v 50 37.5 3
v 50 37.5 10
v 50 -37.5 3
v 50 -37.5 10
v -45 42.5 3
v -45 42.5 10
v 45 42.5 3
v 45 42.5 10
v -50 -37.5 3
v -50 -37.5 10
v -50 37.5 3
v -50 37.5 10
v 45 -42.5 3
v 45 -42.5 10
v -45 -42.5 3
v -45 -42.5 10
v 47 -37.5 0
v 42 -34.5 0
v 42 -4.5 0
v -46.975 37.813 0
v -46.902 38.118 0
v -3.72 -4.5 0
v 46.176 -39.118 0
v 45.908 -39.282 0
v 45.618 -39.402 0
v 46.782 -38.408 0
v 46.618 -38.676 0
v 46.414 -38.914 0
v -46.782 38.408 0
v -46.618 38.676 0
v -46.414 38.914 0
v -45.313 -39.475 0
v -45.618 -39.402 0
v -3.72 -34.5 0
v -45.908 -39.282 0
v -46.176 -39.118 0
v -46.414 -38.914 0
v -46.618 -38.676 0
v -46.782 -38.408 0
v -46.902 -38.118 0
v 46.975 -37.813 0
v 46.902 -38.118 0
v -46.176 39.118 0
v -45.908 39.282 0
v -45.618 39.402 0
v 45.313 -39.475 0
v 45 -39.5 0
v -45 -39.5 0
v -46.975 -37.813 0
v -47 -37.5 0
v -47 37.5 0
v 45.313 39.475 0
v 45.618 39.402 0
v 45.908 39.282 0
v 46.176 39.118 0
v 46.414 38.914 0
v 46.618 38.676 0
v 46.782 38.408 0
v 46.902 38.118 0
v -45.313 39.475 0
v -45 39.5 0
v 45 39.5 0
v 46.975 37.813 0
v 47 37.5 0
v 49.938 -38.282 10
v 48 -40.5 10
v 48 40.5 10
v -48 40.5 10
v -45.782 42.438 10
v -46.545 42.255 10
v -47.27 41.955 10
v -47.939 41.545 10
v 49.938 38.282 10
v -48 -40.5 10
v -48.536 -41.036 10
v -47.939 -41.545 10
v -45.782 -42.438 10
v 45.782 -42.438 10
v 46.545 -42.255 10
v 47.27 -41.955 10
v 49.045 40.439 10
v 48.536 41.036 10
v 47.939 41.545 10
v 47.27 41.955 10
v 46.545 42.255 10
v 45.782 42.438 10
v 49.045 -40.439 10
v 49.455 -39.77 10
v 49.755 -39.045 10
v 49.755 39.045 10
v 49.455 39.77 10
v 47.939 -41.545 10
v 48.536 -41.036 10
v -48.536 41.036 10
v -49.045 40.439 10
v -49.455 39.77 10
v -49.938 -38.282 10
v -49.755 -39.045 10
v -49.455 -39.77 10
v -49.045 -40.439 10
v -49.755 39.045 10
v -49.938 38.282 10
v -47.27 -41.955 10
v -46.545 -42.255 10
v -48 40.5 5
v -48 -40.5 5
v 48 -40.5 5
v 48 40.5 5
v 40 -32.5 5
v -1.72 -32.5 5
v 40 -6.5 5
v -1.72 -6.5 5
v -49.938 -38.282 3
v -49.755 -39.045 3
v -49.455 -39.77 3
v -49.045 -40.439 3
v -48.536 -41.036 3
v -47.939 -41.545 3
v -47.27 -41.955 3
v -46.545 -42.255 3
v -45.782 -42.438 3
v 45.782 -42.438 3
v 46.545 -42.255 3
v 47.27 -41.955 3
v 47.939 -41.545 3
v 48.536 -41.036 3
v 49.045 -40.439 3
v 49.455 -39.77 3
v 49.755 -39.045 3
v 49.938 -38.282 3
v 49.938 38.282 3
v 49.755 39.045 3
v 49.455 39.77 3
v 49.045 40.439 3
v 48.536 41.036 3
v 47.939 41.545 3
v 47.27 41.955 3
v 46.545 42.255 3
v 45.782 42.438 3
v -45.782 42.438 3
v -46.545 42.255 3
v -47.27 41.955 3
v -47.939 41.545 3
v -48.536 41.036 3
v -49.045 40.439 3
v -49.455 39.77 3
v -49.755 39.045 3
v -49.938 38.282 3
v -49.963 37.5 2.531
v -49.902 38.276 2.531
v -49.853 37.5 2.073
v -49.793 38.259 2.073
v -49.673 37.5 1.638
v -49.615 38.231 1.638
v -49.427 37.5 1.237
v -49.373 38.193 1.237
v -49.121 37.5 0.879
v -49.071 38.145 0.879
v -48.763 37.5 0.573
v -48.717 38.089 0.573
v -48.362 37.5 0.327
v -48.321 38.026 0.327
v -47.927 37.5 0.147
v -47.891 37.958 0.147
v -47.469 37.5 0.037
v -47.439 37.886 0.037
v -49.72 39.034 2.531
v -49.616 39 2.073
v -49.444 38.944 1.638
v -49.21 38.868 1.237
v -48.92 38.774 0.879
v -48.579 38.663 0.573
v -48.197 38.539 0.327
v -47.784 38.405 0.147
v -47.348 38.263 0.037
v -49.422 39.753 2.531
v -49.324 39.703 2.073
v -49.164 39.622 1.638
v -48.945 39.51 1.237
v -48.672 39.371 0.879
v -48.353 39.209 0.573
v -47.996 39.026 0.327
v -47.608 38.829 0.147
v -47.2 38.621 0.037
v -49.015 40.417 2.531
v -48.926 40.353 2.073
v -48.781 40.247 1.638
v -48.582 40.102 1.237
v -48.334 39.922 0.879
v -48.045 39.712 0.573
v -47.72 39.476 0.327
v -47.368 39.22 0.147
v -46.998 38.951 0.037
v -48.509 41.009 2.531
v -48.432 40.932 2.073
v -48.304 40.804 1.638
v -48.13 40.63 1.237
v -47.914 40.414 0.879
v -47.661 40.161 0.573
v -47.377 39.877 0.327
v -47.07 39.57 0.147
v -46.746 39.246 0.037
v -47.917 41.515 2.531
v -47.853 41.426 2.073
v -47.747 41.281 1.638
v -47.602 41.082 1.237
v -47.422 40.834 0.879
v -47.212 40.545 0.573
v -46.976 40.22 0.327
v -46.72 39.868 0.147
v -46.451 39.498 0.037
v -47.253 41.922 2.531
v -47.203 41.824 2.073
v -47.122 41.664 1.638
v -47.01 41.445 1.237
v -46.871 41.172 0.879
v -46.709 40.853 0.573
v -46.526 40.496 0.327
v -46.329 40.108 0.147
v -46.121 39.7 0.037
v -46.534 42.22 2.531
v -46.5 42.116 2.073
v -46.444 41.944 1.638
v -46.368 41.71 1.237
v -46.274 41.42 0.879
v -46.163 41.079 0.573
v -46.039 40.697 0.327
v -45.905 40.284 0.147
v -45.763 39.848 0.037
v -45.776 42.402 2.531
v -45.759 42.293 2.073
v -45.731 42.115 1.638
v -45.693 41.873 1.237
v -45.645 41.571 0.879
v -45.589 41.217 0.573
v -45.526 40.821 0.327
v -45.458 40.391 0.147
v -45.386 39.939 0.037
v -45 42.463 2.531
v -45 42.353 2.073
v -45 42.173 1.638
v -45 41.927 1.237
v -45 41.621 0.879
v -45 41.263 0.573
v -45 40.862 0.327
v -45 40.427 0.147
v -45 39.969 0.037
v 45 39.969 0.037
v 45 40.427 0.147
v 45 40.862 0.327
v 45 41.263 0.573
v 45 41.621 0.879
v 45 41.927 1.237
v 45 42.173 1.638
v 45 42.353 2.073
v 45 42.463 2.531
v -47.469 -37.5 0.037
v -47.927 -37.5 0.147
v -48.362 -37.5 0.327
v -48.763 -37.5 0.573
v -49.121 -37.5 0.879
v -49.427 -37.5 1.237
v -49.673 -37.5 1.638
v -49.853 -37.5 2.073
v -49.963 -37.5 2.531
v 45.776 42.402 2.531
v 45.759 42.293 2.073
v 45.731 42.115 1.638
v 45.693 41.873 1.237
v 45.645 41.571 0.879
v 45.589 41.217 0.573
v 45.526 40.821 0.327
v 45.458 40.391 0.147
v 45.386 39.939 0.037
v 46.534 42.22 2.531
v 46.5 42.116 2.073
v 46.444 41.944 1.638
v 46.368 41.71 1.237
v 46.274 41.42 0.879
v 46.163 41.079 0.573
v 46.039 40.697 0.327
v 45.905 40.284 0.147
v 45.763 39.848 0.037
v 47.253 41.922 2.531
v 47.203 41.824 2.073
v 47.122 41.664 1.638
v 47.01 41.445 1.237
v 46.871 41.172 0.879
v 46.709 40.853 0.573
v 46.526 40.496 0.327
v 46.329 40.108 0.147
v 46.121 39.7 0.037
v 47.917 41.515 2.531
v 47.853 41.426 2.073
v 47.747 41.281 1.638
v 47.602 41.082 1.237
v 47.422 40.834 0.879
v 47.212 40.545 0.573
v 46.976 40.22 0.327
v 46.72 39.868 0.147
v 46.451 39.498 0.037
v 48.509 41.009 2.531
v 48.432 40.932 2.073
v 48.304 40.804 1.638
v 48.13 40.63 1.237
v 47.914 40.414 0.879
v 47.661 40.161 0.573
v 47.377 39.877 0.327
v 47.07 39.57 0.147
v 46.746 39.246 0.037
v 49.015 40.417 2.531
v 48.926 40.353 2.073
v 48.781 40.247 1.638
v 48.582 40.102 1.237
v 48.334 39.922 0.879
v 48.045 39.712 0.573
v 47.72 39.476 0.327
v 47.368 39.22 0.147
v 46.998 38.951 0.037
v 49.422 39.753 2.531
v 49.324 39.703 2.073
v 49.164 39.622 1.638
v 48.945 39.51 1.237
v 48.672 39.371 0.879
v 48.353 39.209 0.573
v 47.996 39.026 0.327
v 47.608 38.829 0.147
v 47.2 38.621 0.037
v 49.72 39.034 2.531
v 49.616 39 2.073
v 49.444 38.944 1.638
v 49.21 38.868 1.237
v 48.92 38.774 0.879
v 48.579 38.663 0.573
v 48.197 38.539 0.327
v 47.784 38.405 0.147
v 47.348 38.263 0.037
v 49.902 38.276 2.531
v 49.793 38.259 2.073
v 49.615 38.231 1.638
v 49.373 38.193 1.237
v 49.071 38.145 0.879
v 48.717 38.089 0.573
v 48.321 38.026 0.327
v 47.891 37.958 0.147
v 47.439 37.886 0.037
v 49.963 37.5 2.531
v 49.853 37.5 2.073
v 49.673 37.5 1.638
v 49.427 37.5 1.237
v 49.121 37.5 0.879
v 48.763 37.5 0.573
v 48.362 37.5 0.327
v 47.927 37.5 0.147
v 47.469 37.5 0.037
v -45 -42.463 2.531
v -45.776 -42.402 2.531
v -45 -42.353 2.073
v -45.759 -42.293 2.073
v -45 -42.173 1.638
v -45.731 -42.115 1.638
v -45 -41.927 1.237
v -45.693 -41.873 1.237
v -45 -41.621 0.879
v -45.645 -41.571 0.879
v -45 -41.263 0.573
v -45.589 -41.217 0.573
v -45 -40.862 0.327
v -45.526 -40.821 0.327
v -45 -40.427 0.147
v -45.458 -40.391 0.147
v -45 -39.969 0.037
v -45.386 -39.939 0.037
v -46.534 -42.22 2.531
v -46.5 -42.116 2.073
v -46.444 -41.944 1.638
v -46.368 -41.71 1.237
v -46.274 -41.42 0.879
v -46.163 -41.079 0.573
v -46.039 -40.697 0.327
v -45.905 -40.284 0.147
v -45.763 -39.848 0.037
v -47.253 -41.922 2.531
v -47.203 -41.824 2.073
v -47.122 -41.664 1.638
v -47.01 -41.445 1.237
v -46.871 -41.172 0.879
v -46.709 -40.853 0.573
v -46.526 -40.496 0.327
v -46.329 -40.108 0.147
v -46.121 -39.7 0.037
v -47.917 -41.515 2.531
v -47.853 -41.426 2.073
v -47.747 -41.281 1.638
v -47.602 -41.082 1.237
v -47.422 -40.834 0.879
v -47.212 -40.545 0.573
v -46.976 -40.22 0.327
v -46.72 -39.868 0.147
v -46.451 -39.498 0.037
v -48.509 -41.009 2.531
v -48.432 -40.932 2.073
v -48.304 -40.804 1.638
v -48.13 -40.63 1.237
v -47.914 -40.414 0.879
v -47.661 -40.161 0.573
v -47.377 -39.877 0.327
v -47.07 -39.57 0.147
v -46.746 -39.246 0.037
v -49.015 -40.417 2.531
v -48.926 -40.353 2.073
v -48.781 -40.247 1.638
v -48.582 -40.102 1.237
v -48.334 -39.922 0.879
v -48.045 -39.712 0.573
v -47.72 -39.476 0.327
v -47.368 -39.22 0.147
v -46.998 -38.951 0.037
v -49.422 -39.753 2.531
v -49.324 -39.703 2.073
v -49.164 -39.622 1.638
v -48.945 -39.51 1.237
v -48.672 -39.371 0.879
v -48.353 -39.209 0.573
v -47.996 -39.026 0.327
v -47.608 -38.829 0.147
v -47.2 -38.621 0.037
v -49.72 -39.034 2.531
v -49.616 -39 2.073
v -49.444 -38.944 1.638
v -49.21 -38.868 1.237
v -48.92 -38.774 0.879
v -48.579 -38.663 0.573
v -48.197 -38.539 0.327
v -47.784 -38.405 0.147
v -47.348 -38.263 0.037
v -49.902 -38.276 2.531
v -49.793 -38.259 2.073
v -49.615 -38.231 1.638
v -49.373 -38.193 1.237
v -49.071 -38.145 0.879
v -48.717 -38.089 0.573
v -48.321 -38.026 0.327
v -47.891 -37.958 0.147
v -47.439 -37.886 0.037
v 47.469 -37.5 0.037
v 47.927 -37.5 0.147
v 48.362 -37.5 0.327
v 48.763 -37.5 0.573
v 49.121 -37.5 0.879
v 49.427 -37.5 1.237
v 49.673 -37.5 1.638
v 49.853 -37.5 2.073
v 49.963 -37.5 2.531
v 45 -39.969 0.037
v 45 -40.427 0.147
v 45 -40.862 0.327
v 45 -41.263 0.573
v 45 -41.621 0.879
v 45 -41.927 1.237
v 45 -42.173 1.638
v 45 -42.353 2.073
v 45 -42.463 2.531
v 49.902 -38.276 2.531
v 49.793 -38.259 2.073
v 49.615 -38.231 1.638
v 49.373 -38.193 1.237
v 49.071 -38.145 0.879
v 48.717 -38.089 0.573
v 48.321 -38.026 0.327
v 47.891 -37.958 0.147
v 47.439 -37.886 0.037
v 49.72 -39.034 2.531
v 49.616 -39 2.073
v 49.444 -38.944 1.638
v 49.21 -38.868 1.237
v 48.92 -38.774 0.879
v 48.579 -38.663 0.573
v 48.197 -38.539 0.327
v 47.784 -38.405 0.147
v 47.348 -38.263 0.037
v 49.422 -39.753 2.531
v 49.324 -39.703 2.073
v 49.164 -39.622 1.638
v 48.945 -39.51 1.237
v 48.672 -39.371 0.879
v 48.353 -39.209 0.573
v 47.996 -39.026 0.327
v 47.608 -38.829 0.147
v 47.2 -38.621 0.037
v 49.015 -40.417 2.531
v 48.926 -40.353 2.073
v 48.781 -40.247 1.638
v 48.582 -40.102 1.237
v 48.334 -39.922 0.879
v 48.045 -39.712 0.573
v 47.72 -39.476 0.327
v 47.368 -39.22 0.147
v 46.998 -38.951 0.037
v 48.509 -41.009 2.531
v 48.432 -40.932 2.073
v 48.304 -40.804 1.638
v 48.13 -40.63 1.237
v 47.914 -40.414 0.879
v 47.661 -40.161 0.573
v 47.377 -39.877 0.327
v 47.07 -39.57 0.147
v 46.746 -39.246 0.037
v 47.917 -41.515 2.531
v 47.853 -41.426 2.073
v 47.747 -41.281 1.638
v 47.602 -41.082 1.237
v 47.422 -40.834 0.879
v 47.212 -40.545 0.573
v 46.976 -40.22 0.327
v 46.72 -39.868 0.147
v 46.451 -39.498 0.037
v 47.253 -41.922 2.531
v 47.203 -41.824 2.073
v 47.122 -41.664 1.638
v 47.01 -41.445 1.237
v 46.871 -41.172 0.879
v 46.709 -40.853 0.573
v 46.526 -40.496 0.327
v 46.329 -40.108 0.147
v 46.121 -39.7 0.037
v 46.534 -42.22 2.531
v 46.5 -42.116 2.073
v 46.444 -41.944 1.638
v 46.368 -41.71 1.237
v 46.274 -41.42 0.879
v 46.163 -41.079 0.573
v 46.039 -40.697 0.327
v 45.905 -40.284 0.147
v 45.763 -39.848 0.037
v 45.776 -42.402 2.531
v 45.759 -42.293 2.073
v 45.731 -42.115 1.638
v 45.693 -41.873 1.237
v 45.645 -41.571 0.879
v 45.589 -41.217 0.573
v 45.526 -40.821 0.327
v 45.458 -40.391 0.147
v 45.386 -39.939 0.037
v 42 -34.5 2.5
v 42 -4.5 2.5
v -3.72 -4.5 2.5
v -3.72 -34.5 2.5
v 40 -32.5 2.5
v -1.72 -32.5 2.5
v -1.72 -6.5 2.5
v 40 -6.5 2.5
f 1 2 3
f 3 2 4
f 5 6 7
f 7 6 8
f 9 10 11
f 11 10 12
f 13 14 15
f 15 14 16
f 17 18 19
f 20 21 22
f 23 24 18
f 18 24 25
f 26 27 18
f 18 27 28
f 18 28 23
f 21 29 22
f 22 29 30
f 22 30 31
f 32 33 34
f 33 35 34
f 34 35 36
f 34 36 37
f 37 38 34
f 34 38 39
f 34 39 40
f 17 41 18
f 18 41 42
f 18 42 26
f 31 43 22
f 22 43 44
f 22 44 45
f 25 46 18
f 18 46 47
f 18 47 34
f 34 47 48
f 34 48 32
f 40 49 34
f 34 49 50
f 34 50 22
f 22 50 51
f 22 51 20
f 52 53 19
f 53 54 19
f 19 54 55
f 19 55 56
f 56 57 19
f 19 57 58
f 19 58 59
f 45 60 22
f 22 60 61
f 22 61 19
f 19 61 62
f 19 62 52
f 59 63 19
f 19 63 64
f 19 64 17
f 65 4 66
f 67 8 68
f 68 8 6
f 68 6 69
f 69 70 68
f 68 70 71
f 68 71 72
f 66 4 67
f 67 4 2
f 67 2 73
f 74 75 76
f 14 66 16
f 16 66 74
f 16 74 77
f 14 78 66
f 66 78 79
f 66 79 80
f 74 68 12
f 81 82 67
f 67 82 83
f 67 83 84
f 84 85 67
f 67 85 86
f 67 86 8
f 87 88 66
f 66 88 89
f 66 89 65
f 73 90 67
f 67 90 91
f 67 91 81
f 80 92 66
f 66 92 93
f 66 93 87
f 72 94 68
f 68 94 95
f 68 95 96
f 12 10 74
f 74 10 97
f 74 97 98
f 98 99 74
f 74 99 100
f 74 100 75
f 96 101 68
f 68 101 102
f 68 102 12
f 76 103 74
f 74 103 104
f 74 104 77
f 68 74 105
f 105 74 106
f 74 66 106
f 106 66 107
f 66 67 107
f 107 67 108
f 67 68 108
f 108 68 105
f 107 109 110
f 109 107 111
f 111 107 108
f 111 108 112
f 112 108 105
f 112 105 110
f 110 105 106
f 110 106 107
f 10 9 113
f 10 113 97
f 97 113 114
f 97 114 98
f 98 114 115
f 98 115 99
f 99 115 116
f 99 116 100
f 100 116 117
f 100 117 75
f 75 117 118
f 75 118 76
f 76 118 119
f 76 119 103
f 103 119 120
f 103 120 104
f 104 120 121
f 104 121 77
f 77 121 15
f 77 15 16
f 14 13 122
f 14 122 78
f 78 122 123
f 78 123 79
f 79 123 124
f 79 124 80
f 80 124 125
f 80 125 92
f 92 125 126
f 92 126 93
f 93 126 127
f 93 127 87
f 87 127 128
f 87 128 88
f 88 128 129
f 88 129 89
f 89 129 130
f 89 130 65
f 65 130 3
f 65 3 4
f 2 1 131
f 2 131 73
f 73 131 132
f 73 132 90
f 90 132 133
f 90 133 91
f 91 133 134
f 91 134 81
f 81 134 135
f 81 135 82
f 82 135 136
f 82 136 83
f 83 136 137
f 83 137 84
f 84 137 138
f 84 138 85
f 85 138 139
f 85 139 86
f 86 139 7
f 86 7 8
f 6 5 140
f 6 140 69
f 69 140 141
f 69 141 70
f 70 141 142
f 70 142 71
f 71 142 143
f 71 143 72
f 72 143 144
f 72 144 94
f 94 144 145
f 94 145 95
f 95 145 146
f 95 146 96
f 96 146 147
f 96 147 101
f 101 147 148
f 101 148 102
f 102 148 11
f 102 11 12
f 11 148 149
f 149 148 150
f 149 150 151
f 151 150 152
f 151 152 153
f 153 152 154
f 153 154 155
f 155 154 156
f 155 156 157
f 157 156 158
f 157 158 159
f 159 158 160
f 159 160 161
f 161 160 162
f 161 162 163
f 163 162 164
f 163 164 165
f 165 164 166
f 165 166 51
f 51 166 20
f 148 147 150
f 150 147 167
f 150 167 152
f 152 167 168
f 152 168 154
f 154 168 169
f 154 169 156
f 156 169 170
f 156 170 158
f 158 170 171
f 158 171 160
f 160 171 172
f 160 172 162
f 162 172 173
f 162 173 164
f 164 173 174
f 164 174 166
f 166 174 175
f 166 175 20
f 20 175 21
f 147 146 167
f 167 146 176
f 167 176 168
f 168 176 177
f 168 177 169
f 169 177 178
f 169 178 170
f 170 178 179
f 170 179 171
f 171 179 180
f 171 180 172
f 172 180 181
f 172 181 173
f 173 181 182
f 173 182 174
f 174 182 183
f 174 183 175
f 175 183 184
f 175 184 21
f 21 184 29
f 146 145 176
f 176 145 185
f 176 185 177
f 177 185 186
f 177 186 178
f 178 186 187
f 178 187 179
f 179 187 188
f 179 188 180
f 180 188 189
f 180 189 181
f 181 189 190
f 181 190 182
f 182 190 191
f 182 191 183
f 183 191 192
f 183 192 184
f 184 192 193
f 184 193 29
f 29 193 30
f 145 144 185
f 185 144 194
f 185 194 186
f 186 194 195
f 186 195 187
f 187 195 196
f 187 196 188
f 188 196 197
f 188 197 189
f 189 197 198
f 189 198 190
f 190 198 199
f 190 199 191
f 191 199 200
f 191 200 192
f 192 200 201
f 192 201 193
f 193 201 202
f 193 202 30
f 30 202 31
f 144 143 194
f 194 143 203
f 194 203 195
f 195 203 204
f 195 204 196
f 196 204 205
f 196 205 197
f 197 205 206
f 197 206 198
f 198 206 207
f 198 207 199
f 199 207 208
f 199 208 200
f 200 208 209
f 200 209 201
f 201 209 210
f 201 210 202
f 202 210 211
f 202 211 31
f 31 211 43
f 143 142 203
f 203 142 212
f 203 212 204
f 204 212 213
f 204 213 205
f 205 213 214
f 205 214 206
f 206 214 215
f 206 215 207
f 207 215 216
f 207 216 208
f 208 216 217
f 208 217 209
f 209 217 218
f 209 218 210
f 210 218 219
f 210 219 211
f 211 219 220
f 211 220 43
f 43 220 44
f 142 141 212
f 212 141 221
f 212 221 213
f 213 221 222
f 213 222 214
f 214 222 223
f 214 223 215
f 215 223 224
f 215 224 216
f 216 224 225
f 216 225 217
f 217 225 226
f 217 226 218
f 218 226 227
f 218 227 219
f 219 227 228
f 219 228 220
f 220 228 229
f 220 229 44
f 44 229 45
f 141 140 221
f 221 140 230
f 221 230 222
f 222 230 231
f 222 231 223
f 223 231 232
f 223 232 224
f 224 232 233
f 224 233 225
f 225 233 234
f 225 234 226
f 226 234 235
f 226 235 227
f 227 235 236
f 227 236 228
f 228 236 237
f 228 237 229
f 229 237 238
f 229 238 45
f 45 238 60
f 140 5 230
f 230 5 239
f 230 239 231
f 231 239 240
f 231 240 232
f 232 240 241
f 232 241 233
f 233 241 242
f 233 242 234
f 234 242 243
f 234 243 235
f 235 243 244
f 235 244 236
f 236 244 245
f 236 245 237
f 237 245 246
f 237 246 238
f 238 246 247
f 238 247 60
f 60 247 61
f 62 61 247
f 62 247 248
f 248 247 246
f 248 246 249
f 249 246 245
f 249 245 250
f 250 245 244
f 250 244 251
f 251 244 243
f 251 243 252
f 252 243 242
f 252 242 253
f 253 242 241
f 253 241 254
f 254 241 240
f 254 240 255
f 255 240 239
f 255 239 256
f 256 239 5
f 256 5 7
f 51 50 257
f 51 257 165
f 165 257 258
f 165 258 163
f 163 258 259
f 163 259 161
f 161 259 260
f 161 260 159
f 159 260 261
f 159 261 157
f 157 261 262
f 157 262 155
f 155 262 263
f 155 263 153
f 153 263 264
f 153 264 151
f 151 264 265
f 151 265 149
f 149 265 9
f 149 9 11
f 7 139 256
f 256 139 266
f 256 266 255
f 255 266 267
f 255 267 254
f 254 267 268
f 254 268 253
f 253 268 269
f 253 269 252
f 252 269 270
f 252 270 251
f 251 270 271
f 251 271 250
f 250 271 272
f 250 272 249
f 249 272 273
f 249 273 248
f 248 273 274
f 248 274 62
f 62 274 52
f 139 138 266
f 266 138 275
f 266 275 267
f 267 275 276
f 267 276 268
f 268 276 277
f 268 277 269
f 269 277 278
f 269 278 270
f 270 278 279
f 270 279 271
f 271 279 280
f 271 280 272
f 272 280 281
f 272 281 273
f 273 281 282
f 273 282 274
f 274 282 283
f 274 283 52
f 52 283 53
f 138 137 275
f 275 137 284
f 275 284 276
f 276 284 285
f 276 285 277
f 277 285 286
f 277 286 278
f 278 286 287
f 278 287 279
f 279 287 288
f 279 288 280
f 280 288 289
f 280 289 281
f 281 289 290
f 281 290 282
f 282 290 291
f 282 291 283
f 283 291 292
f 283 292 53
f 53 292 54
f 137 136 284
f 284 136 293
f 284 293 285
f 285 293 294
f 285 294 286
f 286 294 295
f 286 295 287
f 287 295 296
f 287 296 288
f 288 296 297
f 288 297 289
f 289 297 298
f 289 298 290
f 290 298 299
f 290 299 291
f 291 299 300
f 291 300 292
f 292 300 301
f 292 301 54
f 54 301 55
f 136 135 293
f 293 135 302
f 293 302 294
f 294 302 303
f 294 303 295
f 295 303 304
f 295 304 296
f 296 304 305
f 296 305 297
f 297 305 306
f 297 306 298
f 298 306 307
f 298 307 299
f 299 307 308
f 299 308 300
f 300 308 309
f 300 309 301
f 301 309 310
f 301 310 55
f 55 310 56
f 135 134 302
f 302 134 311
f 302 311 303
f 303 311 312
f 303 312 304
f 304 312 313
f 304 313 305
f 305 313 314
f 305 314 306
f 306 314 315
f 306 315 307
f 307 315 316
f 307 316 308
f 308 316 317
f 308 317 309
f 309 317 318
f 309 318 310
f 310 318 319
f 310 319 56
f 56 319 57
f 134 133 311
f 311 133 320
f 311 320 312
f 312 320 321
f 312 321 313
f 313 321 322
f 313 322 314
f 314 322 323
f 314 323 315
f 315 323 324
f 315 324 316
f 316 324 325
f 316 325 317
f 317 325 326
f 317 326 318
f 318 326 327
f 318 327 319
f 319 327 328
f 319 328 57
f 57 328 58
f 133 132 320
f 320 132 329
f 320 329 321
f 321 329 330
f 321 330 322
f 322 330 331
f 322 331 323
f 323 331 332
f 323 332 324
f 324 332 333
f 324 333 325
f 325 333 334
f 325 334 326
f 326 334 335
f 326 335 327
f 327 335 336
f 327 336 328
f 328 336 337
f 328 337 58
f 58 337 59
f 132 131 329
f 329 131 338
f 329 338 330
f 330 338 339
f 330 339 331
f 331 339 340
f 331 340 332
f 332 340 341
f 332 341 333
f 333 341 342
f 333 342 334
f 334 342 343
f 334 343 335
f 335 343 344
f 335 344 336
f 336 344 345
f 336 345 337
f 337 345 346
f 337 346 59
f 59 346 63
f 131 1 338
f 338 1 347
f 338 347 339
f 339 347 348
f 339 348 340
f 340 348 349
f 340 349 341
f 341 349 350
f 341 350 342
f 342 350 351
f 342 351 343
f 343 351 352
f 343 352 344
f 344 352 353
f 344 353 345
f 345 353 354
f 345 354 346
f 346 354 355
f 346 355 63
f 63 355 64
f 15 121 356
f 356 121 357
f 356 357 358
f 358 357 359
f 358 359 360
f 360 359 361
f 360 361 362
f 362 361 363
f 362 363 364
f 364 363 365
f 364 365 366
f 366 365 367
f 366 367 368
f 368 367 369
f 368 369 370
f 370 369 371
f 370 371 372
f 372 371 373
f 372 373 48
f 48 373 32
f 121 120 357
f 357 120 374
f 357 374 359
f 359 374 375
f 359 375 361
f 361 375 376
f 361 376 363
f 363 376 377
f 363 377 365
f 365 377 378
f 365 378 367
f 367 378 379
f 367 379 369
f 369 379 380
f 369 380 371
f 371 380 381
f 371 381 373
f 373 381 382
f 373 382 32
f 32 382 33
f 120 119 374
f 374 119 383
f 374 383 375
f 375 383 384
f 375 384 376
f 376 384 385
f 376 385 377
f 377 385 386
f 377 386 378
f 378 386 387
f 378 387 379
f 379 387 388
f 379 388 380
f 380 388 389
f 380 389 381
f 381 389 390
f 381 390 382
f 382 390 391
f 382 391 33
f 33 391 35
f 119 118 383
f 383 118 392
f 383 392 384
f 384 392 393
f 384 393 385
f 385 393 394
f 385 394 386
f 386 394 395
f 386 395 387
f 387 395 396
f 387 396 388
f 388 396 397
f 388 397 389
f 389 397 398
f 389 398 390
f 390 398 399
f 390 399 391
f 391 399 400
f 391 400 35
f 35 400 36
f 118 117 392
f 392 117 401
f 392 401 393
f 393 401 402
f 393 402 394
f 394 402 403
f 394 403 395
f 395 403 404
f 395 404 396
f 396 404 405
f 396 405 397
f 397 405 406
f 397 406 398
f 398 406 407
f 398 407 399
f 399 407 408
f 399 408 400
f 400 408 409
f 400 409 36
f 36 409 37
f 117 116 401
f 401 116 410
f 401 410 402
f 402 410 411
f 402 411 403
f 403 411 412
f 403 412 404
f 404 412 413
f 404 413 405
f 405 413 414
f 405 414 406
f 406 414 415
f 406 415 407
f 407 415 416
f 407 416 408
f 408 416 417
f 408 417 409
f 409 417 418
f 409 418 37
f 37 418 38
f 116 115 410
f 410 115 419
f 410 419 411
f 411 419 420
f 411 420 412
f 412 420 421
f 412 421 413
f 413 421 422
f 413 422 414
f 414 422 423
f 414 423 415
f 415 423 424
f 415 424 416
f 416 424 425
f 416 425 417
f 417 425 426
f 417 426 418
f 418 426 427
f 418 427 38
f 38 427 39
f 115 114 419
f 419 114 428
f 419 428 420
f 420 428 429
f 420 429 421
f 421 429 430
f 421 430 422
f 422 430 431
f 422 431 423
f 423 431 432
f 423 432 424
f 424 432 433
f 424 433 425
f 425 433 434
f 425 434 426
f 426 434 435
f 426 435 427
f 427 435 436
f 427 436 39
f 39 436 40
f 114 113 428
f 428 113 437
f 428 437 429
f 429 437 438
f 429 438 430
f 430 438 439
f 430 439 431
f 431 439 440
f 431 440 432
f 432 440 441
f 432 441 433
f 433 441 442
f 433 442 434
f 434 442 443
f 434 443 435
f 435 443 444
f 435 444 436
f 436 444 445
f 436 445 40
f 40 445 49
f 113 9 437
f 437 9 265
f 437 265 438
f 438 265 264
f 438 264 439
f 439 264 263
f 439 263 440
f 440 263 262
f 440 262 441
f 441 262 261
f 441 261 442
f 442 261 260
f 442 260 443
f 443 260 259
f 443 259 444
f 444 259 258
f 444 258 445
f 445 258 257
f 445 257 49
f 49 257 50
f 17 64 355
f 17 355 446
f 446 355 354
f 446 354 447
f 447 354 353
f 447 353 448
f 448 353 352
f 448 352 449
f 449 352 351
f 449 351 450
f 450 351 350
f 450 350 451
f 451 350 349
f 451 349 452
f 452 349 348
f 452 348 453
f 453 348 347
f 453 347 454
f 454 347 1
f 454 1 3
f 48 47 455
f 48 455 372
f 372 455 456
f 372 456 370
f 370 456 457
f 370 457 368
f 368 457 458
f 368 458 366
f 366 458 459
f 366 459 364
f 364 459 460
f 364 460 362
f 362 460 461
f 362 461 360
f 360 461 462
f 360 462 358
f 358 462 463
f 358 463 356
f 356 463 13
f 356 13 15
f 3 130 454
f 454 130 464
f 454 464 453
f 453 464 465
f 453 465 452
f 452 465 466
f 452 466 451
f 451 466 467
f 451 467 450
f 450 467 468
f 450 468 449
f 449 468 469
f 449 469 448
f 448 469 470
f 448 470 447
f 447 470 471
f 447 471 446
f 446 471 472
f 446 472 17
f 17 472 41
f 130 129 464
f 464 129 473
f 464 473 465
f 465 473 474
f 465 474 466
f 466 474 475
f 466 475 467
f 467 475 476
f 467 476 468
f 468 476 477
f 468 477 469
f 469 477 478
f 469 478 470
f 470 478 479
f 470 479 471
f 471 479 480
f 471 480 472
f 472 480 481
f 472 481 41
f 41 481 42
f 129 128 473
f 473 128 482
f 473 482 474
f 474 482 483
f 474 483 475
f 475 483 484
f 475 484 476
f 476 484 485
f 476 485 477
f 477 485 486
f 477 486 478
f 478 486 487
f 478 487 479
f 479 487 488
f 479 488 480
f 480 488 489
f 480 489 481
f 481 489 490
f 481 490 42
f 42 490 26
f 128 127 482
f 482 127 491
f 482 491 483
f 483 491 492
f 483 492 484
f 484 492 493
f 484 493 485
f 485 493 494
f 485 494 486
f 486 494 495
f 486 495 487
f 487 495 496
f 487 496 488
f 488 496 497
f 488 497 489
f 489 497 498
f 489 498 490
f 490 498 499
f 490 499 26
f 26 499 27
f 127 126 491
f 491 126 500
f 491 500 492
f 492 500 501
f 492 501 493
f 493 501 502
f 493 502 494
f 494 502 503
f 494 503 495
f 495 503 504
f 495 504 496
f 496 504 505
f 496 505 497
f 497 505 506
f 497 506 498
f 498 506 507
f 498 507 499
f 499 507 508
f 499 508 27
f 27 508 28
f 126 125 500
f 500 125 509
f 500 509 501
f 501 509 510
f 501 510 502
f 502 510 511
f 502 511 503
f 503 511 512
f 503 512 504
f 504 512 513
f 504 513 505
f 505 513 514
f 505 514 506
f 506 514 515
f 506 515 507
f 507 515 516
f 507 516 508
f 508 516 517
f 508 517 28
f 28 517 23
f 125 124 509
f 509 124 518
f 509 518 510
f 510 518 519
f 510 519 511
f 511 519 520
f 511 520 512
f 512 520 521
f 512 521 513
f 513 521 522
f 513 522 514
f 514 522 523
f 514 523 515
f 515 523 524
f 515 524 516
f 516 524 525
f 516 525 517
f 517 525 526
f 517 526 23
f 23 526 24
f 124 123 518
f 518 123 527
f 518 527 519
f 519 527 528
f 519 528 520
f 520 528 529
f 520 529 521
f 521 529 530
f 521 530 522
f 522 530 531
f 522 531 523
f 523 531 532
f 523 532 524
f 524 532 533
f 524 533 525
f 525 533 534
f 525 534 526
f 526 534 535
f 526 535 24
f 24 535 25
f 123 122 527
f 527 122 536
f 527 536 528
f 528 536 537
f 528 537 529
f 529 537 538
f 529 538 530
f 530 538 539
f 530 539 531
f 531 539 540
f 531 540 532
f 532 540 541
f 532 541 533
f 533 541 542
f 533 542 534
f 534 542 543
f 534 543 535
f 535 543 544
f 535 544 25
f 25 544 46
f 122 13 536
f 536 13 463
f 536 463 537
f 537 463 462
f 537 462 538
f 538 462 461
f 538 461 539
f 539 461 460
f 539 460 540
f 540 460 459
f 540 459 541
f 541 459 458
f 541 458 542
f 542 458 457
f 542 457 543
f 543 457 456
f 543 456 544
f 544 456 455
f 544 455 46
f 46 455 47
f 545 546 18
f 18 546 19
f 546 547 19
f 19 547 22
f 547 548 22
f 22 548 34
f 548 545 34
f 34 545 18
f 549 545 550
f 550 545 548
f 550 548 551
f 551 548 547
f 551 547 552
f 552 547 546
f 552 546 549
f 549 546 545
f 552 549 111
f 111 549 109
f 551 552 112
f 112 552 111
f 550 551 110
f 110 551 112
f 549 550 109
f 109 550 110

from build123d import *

# Parameters (mm, degrees)
SKETCH1_W           = 100
SKETCH1_H           = 85
BOSS_EXTRUDE1_DEPTH = 5
SKETCH4_W           = 100
SKETCH4_H           = 85
SKETCH4_W_2         = 96
SKETCH4_H_2         = 81
BOSS_EXTRUDE3_DEPTH = 10
FILLET1_R           = 5
FILLET2_R           = 3
SKETCH8_W           = 45.72
SKETCH8_H           = 30
CUT_EXTRUDE3_DEPTH  = 2.5
SKETCH9_W           = 41.72
SKETCH9_H           = 26
CUT_EXTRUDE4_DEPTH  = 100


with BuildPart() as part:
    # Sketch1 → Boss-Extrude1 (new body)
    with BuildSketch(Plane.XY):
        Rectangle(SKETCH1_W, SKETCH1_H)
    extrude(amount=BOSS_EXTRUDE1_DEPTH)

    # Sketch4 → Boss-Extrude3 (add)
    with BuildSketch(Plane(origin=(0, 0, 0), x_dir=(-1, 0, 0), z_dir=(0, 0, -1))):
        Rectangle(SKETCH4_W, SKETCH4_H)
        Rectangle(SKETCH4_W_2, SKETCH4_H_2, mode=Mode.SUBTRACT)
    extrude(amount=-BOSS_EXTRUDE3_DEPTH)

    # Fillet1
    fillet1_edges = [part.edges().sort_by_distance(p)[0] for p in [
        (50, -42.5, 5),
        (-50, -42.5, 5),
        (-50, 42.5, 5),
        (50, 42.5, 5),
    ]]
    fillet(fillet1_edges, radius=FILLET1_R)

    # Fillet2
    fillet2_edges = [part.edges().sort_by_distance(p)[0] for p in [
        (0, -42.5, 0),
        (50, 0, 0),
        (-50, 0, 0),
        (0, 42.5, 0),
        (-48.535533906, 41.035533906, 0),
        (48.535533906, 41.035533906, 0),
        (48.535533906, -41.035533906, 0),
        (-48.535533906, -41.035533906, 0),
    ]]
    fillet(fillet2_edges, radius=FILLET2_R)

    # Sketch8 → Cut-Extrude3 (cut)
    with BuildSketch(Plane(origin=(0, 0, 0), x_dir=(-1, 0, 0), z_dir=(0, 0, -1))):
        with Locations((-19.14, -19.5)):
            Rectangle(SKETCH8_W, SKETCH8_H)
    extrude(amount=-CUT_EXTRUDE3_DEPTH, mode=Mode.SUBTRACT)

    # Sketch9 → Cut-Extrude4 (cut)
    with BuildSketch(Plane(origin=(0, 0, 2.5), x_dir=(-1, 0, 0), z_dir=(0, 0, -1))):
        with Locations((-19.14, -19.5)):
            Rectangle(SKETCH9_W, SKETCH9_H)
    extrude(amount=-CUT_EXTRUDE4_DEPTH, mode=Mode.SUBTRACT)


solid = part.part
